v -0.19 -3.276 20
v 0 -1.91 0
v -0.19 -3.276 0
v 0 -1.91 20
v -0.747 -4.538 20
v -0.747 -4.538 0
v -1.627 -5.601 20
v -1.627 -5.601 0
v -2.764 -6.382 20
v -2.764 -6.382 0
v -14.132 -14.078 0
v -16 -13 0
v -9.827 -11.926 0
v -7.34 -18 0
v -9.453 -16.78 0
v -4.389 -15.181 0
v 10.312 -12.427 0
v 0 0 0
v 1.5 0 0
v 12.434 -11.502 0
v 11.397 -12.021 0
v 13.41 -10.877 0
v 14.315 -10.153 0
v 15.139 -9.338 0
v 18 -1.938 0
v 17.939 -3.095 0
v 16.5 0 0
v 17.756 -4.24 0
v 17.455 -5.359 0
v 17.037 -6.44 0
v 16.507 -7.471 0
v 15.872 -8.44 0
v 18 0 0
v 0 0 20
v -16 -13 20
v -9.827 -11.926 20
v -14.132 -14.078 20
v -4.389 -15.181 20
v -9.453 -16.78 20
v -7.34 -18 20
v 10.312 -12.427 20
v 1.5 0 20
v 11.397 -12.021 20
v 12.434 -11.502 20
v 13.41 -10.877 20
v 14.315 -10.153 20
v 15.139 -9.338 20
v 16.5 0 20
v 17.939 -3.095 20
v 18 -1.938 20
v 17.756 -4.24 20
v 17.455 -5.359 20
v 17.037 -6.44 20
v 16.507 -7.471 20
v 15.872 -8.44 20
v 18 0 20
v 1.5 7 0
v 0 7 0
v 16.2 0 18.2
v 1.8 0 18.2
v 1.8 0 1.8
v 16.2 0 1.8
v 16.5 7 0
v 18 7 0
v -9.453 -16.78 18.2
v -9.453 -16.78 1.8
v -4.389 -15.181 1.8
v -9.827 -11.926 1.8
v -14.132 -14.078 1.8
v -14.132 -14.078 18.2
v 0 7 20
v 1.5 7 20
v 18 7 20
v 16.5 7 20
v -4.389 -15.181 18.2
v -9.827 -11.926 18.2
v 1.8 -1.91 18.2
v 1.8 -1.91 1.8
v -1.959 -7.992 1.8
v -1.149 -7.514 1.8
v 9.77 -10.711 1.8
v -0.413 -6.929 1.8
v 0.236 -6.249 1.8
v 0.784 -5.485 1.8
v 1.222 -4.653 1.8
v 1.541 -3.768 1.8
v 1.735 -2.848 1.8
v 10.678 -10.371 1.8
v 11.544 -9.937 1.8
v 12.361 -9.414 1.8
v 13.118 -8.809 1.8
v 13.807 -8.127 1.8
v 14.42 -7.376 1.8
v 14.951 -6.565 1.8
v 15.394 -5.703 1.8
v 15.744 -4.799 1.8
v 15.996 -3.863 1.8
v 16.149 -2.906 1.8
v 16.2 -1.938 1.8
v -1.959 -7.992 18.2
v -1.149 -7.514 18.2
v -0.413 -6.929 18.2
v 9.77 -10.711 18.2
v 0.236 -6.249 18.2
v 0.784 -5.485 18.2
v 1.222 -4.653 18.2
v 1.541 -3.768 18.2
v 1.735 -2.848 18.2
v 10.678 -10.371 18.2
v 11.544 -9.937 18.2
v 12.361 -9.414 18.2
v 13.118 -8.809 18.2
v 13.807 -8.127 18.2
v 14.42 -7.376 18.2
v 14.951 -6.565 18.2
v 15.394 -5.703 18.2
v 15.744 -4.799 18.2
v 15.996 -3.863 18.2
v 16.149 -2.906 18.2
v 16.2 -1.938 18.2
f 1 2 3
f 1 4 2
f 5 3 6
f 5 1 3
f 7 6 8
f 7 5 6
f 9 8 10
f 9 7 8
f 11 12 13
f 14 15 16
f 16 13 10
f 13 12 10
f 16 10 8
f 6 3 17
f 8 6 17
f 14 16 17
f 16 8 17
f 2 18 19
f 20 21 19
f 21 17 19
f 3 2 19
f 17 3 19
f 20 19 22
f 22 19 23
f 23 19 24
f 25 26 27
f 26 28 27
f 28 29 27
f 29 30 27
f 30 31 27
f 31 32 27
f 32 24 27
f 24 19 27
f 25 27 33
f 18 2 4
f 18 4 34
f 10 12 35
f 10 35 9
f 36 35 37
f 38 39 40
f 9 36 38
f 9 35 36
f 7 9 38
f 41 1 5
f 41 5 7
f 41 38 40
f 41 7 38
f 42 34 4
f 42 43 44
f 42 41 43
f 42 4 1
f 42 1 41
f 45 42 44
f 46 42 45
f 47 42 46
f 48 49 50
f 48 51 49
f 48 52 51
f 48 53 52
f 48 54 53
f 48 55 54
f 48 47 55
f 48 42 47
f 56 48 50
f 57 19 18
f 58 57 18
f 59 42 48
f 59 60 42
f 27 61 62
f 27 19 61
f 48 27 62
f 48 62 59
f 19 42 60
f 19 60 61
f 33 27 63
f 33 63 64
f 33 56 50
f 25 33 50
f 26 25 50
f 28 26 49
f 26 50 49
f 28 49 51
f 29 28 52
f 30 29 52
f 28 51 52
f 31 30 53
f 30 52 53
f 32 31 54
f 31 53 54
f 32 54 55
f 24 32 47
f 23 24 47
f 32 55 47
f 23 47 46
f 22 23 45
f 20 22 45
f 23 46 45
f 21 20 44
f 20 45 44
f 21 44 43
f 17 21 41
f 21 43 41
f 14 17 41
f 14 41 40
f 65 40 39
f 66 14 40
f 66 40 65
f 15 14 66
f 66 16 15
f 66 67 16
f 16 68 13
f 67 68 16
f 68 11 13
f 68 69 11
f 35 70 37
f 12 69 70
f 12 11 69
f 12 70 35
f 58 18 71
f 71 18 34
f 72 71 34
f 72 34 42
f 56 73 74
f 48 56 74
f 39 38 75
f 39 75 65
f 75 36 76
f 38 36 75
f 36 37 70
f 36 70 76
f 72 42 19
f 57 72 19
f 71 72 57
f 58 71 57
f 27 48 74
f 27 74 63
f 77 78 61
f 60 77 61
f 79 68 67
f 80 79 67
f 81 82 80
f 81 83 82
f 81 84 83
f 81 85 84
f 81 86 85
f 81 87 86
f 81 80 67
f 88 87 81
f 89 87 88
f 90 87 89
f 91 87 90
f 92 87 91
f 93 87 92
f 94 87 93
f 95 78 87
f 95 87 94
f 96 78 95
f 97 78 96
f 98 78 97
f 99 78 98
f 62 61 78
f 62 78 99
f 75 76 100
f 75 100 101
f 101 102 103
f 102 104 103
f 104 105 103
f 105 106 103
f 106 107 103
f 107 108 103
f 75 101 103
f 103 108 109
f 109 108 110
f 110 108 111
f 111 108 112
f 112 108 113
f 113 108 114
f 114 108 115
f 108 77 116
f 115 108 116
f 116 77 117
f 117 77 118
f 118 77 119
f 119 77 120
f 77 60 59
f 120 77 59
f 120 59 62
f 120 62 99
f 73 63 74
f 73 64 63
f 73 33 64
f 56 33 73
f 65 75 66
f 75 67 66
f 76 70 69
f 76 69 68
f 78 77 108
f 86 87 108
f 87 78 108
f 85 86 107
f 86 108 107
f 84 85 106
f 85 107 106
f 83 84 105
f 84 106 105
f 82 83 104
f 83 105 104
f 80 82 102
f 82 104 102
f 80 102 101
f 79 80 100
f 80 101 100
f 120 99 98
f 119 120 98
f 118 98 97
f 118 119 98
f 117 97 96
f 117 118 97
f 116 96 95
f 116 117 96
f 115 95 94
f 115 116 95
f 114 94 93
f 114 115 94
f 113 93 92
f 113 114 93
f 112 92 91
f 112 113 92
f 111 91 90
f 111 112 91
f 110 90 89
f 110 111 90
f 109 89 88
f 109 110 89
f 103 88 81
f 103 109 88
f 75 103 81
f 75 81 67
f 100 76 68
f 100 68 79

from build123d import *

# Parameters (mm, degrees)
PAD_DEPTH         = 20
FILLET_R          = 11
FILLET001_R       = 5
THICKNESS_T       = -1.8
SKETCH001_W       = 1.5
SKETCH001_H       = 20
PAD001_DEPTH      = 7
POCKET_DEPTH      = 1.801
POCKET_DEPTH_BACK = 18.201


with BuildPart() as part:
    # Sketch → Pad (new body)
    with BuildSketch(Plane.XY):
        Polygon((0, 0), (18, 0), (18, -10), (-7.339746, -18), (-16, -13), (0, -5), align=None)
    extrude(amount=PAD_DEPTH)

    # Fillet
    fillet_edges = [part.edges().sort_by_distance(p)[0] for p in [
        (18, -10, 10),
    ]]
    fillet(fillet_edges, radius=FILLET_R)

    # Fillet001
    fillet001_edges = [part.edges().sort_by_distance(p)[0] for p in [
        (0, -5, 10),
    ]]
    fillet(fillet001_edges, radius=FILLET001_R)

    # Thickness
    thickness_openings = [part.faces().sort_by_distance(p)[0] for p in [
        (9, 0, 10),
        (-11.669873, -15.5, 10),
    ]]
    offset(amount=THICKNESS_T, openings=thickness_openings)

    # Sketch001 → Pad001 (new body)
    with BuildSketch(Plane(origin=(0, 0, 0), x_dir=(-1, 0, 0), z_dir=(0, 1, 0))):
        with Locations((-17.25, 10)):
            Rectangle(SKETCH001_W, SKETCH001_H)
        with Locations((-0.75, 10)):
            Rectangle(SKETCH001_W, SKETCH001_H)
    extrude(amount=PAD001_DEPTH)

    # Sketch002 → Pocket (cut, two sides)
    with BuildSketch(Plane.XY.offset(1.8)) as pocket_sk:
        Polygon((-14.132027, -14.078475), (-9.826848, -11.925885), (-4.388537, -15.1807), (-9.45335, -16.77971), align=None)
    extrude(amount=-POCKET_DEPTH, mode=Mode.SUBTRACT)
    extrude(pocket_sk.sketch, amount=POCKET_DEPTH_BACK, mode=Mode.SUBTRACT)


solid = part.part
